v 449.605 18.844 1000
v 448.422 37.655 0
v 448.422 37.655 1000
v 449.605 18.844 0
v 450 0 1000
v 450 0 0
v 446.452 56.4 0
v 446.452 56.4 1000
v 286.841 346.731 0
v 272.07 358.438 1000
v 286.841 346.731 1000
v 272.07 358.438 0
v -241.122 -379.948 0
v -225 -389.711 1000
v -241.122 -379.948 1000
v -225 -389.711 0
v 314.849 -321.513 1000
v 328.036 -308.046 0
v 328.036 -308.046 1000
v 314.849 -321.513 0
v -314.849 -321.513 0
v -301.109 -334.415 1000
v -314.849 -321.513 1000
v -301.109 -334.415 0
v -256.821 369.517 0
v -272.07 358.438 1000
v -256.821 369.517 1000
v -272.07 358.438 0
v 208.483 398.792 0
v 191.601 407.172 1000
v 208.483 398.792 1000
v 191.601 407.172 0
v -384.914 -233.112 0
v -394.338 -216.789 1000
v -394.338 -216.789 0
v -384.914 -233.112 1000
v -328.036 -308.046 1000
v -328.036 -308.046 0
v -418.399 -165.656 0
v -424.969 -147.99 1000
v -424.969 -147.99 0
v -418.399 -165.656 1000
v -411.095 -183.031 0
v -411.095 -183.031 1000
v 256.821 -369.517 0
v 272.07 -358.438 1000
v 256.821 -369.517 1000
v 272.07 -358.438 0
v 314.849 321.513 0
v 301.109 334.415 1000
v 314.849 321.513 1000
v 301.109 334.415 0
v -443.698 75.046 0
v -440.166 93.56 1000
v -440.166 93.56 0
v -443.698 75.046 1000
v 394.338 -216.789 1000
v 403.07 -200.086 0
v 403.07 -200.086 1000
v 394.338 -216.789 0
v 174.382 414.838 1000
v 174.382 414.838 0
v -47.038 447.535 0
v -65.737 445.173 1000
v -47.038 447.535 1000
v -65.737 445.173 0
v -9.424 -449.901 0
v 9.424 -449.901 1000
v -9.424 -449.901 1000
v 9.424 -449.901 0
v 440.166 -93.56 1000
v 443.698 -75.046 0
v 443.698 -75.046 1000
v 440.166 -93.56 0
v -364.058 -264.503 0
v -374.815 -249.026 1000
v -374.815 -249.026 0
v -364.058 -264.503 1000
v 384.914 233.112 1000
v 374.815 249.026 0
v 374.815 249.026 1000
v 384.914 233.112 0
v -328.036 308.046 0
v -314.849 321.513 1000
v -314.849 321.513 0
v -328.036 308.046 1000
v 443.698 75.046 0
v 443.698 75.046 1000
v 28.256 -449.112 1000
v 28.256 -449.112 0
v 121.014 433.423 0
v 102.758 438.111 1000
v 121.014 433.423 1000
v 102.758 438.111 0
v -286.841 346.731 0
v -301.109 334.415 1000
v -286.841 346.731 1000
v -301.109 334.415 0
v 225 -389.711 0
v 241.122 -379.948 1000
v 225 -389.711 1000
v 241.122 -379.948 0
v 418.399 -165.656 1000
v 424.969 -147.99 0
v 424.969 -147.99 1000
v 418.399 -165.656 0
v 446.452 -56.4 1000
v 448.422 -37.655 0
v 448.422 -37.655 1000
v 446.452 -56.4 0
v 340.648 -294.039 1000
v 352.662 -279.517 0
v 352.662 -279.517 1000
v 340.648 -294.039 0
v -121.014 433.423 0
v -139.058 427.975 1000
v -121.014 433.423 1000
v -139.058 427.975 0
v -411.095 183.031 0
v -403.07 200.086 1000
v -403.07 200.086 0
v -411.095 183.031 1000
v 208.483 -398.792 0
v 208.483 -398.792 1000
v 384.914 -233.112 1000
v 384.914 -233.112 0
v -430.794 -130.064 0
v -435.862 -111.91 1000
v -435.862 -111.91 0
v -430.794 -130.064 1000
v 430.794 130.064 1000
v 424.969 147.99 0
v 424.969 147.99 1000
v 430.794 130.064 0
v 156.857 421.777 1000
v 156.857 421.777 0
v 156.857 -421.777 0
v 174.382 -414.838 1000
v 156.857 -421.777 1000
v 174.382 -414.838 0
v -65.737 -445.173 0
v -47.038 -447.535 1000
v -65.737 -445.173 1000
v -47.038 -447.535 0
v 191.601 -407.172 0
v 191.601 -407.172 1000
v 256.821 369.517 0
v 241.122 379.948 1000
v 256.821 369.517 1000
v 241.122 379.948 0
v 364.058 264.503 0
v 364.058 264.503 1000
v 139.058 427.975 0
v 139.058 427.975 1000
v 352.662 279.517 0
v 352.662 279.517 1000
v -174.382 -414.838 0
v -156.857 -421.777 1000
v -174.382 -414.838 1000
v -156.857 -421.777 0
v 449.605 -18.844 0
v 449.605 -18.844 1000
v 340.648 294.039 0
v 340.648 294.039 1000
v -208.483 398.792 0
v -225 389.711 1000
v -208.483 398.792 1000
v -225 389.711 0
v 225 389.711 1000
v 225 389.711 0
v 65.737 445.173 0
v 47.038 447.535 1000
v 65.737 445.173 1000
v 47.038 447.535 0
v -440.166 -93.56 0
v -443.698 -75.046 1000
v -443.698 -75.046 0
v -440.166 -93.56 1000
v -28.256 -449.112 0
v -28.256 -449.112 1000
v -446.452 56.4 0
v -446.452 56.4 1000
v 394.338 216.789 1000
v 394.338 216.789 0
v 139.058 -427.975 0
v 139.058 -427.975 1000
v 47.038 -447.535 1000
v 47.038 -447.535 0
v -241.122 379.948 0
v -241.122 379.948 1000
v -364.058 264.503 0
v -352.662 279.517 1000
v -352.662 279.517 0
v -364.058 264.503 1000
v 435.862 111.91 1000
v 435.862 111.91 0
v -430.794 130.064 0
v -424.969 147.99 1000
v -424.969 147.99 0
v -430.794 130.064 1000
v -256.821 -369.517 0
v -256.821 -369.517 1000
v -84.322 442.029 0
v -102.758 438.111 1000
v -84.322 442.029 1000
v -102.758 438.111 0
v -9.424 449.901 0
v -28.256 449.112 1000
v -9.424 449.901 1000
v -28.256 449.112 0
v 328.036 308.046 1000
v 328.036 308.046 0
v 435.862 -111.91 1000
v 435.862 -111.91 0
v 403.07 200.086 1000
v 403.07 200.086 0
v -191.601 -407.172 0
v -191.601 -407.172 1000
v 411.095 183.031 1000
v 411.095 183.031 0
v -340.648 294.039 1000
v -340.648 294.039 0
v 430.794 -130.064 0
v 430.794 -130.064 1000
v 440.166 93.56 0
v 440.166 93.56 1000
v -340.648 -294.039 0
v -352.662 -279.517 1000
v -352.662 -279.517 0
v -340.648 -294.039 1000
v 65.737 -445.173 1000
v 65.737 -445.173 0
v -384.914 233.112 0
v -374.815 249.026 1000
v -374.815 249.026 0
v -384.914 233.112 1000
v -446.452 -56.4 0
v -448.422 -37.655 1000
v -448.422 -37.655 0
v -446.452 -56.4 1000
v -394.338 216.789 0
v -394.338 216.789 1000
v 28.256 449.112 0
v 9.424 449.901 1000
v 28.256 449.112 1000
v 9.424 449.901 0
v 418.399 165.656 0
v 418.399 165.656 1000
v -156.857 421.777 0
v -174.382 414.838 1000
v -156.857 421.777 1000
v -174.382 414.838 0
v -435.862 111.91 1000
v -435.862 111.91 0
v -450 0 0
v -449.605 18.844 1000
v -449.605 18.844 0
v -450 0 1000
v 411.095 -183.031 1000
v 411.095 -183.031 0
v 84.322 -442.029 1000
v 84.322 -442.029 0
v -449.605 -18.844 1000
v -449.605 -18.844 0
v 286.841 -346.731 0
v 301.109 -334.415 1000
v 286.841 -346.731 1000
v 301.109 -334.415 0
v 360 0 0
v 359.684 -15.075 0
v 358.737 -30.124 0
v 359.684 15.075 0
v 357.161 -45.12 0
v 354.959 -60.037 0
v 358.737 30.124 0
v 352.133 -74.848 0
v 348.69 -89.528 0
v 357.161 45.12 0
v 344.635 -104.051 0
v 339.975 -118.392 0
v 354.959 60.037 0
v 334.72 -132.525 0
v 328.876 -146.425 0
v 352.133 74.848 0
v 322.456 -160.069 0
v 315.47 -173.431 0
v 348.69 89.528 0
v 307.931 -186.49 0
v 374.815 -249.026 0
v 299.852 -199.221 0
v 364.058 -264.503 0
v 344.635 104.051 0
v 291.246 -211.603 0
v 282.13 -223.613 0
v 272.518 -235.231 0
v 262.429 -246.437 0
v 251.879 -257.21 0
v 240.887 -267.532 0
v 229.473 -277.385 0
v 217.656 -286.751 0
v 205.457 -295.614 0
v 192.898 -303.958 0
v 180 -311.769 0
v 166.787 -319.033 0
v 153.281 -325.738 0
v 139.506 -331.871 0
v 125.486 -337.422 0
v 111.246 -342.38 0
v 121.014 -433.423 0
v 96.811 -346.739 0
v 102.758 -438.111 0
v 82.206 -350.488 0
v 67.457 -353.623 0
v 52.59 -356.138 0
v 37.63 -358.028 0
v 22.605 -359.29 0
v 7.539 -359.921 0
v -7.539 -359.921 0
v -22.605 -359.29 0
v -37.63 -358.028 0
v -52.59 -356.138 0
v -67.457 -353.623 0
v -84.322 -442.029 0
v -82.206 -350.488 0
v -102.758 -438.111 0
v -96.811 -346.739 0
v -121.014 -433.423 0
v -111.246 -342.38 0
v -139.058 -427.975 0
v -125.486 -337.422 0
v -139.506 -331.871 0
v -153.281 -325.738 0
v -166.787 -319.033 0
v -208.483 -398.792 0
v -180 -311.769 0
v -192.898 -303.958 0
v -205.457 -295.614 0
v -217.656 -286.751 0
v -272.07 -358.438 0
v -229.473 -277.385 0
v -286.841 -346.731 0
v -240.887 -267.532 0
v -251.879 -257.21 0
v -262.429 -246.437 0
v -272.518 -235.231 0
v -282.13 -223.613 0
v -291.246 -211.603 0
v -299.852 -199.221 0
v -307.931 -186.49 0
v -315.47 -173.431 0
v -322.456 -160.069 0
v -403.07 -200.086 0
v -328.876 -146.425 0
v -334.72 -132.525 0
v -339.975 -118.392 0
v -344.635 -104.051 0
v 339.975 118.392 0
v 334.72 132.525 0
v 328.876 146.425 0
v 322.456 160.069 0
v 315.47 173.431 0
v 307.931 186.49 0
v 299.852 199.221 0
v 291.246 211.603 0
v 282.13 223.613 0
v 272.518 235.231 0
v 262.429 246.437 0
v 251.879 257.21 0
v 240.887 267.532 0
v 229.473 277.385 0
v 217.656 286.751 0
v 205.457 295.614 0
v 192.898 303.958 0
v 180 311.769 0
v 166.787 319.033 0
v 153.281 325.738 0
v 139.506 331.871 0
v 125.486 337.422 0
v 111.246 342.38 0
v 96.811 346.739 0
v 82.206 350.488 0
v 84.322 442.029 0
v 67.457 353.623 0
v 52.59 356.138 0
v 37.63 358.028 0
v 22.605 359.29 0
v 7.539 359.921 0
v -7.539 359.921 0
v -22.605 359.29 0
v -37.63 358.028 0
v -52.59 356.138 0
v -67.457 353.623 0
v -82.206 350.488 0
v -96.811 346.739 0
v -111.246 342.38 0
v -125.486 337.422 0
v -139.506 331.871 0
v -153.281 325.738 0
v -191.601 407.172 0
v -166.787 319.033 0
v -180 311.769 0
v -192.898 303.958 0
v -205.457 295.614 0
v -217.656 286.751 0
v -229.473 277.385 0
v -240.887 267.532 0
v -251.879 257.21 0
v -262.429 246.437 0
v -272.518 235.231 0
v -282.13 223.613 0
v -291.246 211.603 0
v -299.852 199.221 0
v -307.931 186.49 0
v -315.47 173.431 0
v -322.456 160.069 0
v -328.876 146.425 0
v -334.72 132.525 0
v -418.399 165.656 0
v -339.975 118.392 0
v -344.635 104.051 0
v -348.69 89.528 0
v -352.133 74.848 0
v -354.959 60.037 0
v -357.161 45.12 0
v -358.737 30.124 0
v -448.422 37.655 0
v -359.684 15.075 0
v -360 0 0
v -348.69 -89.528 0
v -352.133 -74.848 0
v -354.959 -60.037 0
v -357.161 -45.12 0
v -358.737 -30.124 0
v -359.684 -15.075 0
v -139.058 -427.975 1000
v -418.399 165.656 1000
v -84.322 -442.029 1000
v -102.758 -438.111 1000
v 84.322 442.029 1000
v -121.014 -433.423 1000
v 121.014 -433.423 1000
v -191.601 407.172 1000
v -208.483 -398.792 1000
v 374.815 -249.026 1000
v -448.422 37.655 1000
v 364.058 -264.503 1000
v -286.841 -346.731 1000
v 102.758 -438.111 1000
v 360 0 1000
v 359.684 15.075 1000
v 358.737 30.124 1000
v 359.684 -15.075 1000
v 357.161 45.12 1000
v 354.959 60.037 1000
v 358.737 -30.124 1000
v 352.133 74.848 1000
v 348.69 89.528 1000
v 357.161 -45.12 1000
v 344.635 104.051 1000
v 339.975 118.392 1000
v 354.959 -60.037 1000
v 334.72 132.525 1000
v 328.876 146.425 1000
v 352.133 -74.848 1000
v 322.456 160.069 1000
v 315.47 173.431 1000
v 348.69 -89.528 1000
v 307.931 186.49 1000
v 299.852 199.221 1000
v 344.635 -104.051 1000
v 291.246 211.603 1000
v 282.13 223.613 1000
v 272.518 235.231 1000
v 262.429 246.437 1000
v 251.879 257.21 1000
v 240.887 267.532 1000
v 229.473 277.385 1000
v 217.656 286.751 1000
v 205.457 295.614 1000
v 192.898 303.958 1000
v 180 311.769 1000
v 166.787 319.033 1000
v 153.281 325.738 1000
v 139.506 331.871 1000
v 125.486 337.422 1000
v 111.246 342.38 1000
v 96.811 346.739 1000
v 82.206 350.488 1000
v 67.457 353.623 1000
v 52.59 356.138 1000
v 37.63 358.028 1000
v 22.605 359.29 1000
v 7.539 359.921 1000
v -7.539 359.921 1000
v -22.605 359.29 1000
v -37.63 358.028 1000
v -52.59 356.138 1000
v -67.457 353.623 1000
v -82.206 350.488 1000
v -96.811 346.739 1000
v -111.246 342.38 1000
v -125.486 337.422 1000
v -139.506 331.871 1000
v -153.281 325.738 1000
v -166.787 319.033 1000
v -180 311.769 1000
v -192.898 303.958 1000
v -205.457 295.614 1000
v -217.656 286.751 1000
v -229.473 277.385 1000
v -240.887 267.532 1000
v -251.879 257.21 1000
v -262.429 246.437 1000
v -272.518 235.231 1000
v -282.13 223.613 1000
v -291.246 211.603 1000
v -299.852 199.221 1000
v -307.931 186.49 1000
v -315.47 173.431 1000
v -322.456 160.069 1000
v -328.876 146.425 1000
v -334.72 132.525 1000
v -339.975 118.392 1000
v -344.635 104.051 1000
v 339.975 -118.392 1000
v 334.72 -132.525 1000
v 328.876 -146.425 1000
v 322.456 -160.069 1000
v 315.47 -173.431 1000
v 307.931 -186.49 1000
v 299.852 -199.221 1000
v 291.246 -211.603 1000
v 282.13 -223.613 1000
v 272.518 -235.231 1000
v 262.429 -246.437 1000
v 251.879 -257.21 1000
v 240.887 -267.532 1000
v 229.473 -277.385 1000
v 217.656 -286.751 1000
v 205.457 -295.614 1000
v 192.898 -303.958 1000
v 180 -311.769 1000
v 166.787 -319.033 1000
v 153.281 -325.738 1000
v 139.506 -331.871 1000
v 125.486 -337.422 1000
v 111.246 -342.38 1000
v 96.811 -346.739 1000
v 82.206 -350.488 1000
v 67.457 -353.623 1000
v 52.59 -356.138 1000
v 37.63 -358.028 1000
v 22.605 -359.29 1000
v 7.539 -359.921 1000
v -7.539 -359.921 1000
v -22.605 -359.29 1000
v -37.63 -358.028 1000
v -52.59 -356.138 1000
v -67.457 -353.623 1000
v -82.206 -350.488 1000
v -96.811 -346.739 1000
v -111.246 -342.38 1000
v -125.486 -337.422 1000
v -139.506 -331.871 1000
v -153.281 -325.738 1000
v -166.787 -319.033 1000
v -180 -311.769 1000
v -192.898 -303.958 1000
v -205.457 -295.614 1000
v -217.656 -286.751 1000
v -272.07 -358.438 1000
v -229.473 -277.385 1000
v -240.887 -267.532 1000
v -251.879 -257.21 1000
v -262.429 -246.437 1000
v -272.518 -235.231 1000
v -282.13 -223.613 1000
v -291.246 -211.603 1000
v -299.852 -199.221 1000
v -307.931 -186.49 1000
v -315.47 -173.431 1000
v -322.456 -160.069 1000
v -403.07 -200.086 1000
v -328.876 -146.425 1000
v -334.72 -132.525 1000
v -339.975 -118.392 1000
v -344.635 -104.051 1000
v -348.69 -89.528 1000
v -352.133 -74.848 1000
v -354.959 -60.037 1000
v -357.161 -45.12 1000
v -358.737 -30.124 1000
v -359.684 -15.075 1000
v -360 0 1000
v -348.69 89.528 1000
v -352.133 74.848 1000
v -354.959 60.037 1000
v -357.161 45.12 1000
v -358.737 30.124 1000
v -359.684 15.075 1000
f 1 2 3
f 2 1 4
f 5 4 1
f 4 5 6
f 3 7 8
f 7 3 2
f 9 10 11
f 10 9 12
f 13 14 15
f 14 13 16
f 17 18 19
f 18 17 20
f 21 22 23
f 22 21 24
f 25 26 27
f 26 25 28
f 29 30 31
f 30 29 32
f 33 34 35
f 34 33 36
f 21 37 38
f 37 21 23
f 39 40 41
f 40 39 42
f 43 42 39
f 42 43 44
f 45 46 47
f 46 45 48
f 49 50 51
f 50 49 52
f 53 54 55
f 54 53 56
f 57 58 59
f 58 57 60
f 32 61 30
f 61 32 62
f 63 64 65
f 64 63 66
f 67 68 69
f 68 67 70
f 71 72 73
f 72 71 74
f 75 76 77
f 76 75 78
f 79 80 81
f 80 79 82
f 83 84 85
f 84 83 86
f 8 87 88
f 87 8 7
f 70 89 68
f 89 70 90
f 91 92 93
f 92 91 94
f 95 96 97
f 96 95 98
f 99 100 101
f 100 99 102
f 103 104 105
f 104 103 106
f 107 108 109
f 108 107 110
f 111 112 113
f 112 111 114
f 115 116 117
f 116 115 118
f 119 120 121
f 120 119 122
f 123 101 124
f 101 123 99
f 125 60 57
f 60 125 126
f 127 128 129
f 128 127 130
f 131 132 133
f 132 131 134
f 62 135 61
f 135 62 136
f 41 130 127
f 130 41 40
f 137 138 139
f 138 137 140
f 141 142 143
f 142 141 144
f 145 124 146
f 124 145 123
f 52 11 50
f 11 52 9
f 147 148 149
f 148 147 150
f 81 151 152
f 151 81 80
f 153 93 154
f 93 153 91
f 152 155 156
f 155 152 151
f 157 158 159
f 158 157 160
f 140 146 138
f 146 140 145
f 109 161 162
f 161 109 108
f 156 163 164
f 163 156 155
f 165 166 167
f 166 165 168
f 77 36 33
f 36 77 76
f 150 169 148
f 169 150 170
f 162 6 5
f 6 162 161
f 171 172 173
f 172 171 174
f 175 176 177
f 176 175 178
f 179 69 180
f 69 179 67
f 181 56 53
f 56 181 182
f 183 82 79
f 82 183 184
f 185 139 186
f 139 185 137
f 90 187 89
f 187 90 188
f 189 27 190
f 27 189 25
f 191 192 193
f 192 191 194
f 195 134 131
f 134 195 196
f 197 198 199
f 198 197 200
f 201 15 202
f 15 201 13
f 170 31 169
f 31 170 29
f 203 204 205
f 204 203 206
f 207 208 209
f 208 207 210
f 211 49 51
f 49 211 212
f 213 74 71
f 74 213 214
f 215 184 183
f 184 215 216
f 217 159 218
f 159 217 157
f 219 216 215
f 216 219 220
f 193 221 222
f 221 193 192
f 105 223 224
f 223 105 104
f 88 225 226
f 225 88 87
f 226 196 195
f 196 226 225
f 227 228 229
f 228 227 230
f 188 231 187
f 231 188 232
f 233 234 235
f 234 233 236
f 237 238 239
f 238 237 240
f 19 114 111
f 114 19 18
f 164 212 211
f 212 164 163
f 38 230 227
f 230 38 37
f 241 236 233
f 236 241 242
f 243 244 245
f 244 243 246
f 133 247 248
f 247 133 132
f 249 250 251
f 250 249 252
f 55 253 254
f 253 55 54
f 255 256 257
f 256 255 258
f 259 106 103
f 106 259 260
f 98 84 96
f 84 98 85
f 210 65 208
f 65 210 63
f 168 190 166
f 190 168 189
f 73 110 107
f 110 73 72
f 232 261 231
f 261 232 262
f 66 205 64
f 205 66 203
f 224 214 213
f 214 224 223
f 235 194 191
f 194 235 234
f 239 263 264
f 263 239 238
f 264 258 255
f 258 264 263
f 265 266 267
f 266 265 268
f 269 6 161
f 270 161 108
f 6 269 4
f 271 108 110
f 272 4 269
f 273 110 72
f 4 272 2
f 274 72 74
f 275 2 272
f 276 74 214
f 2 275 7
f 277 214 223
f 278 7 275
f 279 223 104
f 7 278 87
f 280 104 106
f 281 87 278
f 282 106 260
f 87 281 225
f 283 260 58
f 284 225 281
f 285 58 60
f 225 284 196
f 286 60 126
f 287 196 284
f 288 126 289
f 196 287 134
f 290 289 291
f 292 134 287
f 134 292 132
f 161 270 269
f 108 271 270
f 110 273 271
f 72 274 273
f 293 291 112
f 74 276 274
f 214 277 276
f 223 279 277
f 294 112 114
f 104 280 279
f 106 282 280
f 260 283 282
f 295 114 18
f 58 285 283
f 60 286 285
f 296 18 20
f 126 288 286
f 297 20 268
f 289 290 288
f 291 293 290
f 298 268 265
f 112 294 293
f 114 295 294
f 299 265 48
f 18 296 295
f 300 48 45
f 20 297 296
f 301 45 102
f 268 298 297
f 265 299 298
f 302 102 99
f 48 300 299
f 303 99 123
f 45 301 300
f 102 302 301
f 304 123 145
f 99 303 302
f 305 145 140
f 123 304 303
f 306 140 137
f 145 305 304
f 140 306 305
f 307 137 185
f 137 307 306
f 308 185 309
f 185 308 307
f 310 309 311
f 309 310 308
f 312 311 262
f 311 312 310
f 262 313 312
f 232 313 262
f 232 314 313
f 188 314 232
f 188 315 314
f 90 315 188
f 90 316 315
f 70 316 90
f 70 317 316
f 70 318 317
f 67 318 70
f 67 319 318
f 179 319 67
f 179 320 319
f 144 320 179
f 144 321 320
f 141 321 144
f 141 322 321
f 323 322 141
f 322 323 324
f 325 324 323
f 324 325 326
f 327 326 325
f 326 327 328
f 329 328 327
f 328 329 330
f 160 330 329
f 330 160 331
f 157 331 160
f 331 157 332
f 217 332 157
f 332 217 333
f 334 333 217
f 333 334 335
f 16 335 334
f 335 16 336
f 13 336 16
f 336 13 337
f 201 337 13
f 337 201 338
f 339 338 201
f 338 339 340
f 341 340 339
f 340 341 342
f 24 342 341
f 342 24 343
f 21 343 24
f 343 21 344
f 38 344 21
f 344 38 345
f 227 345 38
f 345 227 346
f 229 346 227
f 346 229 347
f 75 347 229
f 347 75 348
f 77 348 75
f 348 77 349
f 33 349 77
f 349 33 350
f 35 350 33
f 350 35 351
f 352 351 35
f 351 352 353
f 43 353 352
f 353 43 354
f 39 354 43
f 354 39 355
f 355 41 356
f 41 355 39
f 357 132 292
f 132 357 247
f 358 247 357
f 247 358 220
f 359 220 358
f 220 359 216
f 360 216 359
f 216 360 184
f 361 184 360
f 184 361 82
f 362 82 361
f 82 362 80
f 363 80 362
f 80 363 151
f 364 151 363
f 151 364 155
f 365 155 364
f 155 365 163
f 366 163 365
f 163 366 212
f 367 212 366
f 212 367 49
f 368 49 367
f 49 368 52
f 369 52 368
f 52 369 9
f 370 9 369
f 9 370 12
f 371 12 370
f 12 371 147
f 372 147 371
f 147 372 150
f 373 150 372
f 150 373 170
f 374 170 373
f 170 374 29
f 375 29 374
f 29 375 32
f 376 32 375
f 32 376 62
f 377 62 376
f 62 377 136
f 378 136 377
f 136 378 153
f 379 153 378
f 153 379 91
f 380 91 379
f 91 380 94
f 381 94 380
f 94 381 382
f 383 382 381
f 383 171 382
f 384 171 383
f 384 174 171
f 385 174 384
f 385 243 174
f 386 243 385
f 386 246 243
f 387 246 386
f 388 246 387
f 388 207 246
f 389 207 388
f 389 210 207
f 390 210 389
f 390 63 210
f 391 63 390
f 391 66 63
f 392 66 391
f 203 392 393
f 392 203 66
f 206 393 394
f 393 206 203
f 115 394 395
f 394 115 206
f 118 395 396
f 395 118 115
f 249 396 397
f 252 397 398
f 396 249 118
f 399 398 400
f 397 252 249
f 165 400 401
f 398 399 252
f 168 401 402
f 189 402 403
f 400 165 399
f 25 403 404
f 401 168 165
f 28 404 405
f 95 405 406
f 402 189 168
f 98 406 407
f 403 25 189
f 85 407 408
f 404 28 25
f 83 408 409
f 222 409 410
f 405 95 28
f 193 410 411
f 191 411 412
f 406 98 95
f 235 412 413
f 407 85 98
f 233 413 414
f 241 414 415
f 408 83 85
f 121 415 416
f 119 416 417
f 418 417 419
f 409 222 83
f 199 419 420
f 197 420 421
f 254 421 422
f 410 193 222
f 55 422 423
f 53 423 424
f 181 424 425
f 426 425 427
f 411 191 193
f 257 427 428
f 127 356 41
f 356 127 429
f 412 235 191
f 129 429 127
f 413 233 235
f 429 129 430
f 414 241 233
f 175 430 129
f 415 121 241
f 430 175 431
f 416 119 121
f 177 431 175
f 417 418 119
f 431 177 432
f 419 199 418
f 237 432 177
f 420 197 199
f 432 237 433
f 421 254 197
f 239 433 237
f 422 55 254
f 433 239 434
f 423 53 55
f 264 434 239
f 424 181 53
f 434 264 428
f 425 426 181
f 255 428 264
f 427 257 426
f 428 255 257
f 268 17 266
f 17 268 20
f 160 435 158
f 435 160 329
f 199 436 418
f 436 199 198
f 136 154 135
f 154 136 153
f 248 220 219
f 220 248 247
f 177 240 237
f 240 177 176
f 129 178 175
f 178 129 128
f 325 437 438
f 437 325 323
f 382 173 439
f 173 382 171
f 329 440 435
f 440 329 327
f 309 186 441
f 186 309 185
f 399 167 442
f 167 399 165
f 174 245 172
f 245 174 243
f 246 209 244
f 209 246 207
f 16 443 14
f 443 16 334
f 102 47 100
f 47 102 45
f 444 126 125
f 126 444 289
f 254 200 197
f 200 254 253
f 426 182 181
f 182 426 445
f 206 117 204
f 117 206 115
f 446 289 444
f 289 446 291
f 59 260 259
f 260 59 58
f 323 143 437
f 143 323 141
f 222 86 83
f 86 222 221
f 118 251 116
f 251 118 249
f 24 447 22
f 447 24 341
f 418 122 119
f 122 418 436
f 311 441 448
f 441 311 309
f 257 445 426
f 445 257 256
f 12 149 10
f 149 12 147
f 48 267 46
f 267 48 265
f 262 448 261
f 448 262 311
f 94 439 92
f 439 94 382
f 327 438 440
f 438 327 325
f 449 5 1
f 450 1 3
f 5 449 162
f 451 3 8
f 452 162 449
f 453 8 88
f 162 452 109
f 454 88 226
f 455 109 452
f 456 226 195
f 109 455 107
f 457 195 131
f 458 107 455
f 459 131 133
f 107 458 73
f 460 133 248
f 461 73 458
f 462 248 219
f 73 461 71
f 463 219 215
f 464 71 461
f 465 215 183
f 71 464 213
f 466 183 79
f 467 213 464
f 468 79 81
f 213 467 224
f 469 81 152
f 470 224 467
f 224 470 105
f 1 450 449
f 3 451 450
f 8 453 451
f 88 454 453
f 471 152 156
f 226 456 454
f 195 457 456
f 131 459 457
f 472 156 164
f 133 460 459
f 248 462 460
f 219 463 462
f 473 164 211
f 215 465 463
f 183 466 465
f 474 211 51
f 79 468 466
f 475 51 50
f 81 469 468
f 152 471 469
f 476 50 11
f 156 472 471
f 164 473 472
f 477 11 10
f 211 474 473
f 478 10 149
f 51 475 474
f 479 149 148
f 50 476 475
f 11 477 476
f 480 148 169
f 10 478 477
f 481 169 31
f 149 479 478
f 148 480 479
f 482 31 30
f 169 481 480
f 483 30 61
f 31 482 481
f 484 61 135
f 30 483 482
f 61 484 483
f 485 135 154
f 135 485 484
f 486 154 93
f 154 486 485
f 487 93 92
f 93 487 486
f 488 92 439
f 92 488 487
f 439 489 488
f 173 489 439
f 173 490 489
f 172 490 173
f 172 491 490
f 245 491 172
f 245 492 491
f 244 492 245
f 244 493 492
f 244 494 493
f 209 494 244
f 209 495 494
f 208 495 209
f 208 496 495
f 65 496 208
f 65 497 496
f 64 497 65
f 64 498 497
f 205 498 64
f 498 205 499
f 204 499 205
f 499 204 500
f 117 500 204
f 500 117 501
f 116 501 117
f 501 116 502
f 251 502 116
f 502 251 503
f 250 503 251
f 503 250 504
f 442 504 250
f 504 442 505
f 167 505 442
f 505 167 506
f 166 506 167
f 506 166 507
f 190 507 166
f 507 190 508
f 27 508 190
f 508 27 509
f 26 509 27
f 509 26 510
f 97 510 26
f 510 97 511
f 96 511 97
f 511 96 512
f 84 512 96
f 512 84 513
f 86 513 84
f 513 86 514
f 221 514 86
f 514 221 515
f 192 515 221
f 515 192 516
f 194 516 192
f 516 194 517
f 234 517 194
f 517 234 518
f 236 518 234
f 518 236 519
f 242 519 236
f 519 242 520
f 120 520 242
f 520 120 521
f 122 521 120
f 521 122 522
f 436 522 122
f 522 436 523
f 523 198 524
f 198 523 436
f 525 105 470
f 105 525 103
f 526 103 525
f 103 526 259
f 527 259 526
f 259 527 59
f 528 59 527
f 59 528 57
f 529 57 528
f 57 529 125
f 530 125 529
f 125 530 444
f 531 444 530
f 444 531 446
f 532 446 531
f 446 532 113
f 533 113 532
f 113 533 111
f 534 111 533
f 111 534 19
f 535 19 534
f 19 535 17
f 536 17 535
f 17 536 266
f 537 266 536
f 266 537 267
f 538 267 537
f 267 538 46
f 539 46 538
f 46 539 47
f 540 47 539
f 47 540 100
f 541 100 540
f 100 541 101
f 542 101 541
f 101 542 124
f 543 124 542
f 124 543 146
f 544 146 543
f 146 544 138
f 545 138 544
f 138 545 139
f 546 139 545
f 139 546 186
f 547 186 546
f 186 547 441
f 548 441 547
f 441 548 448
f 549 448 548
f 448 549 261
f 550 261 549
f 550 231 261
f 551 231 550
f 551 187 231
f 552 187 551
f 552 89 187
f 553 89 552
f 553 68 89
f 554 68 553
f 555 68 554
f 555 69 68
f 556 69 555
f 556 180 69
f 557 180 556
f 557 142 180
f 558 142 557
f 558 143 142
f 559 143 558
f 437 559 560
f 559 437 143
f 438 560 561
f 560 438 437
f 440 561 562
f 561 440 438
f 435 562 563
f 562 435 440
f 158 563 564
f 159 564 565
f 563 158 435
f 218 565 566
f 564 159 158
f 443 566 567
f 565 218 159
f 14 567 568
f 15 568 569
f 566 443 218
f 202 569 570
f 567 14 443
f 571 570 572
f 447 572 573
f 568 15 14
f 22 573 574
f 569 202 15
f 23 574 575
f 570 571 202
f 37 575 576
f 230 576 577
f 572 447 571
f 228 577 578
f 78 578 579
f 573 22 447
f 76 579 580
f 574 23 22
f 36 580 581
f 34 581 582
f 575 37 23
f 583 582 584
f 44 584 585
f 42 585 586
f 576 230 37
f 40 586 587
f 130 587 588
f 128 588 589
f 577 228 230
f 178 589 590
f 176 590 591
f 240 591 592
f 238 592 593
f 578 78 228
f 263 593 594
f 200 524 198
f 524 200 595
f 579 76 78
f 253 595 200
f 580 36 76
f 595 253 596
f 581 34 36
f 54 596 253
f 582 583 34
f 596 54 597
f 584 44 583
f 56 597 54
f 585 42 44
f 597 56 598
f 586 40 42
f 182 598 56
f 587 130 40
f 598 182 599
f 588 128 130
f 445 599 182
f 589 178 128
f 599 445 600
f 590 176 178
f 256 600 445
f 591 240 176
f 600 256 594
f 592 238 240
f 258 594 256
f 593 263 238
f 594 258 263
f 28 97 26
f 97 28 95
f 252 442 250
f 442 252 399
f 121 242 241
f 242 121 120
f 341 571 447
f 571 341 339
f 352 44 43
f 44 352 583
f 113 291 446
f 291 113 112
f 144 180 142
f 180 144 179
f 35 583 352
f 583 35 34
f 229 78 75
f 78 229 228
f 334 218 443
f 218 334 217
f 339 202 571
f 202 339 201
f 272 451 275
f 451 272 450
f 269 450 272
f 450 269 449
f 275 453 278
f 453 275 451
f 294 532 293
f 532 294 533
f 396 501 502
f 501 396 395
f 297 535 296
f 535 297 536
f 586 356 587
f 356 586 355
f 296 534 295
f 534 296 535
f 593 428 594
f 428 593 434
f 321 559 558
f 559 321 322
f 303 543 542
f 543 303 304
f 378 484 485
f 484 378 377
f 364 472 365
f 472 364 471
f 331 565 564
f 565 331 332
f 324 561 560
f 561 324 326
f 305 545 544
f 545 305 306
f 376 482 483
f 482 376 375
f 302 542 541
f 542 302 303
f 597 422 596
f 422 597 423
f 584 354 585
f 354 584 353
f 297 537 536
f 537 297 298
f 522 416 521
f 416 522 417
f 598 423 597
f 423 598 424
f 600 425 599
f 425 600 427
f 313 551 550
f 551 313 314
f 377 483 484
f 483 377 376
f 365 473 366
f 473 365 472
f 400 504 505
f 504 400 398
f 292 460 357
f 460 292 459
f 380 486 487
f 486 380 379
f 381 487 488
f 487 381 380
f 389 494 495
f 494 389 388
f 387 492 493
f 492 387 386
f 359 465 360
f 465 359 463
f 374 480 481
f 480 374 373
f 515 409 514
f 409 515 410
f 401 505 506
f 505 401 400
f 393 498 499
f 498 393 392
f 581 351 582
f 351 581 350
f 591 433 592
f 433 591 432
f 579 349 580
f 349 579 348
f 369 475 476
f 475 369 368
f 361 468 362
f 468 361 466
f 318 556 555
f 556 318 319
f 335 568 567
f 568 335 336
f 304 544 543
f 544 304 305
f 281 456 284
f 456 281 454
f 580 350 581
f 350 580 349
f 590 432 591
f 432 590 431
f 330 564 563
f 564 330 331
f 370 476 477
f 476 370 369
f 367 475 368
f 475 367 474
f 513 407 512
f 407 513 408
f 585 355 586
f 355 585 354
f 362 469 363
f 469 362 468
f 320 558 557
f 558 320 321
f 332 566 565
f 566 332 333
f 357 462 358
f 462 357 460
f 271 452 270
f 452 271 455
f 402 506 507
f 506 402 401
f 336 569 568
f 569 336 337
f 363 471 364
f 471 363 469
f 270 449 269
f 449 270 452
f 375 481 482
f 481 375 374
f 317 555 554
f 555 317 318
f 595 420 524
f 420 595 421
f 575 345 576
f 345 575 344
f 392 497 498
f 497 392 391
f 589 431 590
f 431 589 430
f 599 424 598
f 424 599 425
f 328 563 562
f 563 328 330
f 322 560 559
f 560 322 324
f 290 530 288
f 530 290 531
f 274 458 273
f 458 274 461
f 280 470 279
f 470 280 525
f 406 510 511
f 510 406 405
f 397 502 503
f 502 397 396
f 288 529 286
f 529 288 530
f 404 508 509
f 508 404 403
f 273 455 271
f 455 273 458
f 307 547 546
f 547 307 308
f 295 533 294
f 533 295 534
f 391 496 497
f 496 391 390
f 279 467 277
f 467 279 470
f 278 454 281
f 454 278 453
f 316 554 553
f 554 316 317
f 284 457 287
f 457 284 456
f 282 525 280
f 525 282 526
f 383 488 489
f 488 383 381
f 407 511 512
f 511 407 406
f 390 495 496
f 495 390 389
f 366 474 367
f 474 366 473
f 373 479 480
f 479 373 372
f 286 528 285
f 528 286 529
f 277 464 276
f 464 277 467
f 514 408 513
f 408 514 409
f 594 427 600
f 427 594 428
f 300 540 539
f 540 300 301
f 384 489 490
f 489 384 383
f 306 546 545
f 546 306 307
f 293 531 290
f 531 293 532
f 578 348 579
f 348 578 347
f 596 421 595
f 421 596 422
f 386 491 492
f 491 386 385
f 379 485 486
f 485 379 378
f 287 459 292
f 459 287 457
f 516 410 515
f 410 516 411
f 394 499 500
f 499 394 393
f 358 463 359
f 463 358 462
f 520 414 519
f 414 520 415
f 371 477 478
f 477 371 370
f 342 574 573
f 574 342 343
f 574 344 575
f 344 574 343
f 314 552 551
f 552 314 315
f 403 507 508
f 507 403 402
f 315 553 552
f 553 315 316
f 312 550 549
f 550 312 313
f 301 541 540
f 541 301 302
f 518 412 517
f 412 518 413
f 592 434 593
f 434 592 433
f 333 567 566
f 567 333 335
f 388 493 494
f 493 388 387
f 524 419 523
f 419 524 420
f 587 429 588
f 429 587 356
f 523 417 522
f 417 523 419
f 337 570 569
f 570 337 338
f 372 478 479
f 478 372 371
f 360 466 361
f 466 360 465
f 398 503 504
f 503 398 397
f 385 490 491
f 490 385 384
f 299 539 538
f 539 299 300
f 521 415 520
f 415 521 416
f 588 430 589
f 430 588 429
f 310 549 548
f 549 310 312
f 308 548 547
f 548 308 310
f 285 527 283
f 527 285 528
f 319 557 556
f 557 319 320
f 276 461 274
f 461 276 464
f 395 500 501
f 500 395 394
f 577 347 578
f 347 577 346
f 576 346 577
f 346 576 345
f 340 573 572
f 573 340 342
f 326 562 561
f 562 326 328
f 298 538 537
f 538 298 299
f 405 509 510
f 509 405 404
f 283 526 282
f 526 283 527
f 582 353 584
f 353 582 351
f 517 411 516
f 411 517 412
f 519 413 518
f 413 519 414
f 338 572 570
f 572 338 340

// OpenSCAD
// General underground concrete pipe
// Units in millimeters

$fn = 150; // smoothness

pipe_length = 1000;
outer_diameter = 900;
wall_thickness = 90;

// Derived
inner_diameter = outer_diameter - 2 * wall_thickness;

difference() {
    union() {
        // Main cylinder
        cylinder(h = pipe_length, d = outer_diameter, center = false);
    }

    // Hollow out interior
    translate([0, 0, -1])
        cylinder(h = pipe_length + 2, d = inner_diameter, center = false);
}
